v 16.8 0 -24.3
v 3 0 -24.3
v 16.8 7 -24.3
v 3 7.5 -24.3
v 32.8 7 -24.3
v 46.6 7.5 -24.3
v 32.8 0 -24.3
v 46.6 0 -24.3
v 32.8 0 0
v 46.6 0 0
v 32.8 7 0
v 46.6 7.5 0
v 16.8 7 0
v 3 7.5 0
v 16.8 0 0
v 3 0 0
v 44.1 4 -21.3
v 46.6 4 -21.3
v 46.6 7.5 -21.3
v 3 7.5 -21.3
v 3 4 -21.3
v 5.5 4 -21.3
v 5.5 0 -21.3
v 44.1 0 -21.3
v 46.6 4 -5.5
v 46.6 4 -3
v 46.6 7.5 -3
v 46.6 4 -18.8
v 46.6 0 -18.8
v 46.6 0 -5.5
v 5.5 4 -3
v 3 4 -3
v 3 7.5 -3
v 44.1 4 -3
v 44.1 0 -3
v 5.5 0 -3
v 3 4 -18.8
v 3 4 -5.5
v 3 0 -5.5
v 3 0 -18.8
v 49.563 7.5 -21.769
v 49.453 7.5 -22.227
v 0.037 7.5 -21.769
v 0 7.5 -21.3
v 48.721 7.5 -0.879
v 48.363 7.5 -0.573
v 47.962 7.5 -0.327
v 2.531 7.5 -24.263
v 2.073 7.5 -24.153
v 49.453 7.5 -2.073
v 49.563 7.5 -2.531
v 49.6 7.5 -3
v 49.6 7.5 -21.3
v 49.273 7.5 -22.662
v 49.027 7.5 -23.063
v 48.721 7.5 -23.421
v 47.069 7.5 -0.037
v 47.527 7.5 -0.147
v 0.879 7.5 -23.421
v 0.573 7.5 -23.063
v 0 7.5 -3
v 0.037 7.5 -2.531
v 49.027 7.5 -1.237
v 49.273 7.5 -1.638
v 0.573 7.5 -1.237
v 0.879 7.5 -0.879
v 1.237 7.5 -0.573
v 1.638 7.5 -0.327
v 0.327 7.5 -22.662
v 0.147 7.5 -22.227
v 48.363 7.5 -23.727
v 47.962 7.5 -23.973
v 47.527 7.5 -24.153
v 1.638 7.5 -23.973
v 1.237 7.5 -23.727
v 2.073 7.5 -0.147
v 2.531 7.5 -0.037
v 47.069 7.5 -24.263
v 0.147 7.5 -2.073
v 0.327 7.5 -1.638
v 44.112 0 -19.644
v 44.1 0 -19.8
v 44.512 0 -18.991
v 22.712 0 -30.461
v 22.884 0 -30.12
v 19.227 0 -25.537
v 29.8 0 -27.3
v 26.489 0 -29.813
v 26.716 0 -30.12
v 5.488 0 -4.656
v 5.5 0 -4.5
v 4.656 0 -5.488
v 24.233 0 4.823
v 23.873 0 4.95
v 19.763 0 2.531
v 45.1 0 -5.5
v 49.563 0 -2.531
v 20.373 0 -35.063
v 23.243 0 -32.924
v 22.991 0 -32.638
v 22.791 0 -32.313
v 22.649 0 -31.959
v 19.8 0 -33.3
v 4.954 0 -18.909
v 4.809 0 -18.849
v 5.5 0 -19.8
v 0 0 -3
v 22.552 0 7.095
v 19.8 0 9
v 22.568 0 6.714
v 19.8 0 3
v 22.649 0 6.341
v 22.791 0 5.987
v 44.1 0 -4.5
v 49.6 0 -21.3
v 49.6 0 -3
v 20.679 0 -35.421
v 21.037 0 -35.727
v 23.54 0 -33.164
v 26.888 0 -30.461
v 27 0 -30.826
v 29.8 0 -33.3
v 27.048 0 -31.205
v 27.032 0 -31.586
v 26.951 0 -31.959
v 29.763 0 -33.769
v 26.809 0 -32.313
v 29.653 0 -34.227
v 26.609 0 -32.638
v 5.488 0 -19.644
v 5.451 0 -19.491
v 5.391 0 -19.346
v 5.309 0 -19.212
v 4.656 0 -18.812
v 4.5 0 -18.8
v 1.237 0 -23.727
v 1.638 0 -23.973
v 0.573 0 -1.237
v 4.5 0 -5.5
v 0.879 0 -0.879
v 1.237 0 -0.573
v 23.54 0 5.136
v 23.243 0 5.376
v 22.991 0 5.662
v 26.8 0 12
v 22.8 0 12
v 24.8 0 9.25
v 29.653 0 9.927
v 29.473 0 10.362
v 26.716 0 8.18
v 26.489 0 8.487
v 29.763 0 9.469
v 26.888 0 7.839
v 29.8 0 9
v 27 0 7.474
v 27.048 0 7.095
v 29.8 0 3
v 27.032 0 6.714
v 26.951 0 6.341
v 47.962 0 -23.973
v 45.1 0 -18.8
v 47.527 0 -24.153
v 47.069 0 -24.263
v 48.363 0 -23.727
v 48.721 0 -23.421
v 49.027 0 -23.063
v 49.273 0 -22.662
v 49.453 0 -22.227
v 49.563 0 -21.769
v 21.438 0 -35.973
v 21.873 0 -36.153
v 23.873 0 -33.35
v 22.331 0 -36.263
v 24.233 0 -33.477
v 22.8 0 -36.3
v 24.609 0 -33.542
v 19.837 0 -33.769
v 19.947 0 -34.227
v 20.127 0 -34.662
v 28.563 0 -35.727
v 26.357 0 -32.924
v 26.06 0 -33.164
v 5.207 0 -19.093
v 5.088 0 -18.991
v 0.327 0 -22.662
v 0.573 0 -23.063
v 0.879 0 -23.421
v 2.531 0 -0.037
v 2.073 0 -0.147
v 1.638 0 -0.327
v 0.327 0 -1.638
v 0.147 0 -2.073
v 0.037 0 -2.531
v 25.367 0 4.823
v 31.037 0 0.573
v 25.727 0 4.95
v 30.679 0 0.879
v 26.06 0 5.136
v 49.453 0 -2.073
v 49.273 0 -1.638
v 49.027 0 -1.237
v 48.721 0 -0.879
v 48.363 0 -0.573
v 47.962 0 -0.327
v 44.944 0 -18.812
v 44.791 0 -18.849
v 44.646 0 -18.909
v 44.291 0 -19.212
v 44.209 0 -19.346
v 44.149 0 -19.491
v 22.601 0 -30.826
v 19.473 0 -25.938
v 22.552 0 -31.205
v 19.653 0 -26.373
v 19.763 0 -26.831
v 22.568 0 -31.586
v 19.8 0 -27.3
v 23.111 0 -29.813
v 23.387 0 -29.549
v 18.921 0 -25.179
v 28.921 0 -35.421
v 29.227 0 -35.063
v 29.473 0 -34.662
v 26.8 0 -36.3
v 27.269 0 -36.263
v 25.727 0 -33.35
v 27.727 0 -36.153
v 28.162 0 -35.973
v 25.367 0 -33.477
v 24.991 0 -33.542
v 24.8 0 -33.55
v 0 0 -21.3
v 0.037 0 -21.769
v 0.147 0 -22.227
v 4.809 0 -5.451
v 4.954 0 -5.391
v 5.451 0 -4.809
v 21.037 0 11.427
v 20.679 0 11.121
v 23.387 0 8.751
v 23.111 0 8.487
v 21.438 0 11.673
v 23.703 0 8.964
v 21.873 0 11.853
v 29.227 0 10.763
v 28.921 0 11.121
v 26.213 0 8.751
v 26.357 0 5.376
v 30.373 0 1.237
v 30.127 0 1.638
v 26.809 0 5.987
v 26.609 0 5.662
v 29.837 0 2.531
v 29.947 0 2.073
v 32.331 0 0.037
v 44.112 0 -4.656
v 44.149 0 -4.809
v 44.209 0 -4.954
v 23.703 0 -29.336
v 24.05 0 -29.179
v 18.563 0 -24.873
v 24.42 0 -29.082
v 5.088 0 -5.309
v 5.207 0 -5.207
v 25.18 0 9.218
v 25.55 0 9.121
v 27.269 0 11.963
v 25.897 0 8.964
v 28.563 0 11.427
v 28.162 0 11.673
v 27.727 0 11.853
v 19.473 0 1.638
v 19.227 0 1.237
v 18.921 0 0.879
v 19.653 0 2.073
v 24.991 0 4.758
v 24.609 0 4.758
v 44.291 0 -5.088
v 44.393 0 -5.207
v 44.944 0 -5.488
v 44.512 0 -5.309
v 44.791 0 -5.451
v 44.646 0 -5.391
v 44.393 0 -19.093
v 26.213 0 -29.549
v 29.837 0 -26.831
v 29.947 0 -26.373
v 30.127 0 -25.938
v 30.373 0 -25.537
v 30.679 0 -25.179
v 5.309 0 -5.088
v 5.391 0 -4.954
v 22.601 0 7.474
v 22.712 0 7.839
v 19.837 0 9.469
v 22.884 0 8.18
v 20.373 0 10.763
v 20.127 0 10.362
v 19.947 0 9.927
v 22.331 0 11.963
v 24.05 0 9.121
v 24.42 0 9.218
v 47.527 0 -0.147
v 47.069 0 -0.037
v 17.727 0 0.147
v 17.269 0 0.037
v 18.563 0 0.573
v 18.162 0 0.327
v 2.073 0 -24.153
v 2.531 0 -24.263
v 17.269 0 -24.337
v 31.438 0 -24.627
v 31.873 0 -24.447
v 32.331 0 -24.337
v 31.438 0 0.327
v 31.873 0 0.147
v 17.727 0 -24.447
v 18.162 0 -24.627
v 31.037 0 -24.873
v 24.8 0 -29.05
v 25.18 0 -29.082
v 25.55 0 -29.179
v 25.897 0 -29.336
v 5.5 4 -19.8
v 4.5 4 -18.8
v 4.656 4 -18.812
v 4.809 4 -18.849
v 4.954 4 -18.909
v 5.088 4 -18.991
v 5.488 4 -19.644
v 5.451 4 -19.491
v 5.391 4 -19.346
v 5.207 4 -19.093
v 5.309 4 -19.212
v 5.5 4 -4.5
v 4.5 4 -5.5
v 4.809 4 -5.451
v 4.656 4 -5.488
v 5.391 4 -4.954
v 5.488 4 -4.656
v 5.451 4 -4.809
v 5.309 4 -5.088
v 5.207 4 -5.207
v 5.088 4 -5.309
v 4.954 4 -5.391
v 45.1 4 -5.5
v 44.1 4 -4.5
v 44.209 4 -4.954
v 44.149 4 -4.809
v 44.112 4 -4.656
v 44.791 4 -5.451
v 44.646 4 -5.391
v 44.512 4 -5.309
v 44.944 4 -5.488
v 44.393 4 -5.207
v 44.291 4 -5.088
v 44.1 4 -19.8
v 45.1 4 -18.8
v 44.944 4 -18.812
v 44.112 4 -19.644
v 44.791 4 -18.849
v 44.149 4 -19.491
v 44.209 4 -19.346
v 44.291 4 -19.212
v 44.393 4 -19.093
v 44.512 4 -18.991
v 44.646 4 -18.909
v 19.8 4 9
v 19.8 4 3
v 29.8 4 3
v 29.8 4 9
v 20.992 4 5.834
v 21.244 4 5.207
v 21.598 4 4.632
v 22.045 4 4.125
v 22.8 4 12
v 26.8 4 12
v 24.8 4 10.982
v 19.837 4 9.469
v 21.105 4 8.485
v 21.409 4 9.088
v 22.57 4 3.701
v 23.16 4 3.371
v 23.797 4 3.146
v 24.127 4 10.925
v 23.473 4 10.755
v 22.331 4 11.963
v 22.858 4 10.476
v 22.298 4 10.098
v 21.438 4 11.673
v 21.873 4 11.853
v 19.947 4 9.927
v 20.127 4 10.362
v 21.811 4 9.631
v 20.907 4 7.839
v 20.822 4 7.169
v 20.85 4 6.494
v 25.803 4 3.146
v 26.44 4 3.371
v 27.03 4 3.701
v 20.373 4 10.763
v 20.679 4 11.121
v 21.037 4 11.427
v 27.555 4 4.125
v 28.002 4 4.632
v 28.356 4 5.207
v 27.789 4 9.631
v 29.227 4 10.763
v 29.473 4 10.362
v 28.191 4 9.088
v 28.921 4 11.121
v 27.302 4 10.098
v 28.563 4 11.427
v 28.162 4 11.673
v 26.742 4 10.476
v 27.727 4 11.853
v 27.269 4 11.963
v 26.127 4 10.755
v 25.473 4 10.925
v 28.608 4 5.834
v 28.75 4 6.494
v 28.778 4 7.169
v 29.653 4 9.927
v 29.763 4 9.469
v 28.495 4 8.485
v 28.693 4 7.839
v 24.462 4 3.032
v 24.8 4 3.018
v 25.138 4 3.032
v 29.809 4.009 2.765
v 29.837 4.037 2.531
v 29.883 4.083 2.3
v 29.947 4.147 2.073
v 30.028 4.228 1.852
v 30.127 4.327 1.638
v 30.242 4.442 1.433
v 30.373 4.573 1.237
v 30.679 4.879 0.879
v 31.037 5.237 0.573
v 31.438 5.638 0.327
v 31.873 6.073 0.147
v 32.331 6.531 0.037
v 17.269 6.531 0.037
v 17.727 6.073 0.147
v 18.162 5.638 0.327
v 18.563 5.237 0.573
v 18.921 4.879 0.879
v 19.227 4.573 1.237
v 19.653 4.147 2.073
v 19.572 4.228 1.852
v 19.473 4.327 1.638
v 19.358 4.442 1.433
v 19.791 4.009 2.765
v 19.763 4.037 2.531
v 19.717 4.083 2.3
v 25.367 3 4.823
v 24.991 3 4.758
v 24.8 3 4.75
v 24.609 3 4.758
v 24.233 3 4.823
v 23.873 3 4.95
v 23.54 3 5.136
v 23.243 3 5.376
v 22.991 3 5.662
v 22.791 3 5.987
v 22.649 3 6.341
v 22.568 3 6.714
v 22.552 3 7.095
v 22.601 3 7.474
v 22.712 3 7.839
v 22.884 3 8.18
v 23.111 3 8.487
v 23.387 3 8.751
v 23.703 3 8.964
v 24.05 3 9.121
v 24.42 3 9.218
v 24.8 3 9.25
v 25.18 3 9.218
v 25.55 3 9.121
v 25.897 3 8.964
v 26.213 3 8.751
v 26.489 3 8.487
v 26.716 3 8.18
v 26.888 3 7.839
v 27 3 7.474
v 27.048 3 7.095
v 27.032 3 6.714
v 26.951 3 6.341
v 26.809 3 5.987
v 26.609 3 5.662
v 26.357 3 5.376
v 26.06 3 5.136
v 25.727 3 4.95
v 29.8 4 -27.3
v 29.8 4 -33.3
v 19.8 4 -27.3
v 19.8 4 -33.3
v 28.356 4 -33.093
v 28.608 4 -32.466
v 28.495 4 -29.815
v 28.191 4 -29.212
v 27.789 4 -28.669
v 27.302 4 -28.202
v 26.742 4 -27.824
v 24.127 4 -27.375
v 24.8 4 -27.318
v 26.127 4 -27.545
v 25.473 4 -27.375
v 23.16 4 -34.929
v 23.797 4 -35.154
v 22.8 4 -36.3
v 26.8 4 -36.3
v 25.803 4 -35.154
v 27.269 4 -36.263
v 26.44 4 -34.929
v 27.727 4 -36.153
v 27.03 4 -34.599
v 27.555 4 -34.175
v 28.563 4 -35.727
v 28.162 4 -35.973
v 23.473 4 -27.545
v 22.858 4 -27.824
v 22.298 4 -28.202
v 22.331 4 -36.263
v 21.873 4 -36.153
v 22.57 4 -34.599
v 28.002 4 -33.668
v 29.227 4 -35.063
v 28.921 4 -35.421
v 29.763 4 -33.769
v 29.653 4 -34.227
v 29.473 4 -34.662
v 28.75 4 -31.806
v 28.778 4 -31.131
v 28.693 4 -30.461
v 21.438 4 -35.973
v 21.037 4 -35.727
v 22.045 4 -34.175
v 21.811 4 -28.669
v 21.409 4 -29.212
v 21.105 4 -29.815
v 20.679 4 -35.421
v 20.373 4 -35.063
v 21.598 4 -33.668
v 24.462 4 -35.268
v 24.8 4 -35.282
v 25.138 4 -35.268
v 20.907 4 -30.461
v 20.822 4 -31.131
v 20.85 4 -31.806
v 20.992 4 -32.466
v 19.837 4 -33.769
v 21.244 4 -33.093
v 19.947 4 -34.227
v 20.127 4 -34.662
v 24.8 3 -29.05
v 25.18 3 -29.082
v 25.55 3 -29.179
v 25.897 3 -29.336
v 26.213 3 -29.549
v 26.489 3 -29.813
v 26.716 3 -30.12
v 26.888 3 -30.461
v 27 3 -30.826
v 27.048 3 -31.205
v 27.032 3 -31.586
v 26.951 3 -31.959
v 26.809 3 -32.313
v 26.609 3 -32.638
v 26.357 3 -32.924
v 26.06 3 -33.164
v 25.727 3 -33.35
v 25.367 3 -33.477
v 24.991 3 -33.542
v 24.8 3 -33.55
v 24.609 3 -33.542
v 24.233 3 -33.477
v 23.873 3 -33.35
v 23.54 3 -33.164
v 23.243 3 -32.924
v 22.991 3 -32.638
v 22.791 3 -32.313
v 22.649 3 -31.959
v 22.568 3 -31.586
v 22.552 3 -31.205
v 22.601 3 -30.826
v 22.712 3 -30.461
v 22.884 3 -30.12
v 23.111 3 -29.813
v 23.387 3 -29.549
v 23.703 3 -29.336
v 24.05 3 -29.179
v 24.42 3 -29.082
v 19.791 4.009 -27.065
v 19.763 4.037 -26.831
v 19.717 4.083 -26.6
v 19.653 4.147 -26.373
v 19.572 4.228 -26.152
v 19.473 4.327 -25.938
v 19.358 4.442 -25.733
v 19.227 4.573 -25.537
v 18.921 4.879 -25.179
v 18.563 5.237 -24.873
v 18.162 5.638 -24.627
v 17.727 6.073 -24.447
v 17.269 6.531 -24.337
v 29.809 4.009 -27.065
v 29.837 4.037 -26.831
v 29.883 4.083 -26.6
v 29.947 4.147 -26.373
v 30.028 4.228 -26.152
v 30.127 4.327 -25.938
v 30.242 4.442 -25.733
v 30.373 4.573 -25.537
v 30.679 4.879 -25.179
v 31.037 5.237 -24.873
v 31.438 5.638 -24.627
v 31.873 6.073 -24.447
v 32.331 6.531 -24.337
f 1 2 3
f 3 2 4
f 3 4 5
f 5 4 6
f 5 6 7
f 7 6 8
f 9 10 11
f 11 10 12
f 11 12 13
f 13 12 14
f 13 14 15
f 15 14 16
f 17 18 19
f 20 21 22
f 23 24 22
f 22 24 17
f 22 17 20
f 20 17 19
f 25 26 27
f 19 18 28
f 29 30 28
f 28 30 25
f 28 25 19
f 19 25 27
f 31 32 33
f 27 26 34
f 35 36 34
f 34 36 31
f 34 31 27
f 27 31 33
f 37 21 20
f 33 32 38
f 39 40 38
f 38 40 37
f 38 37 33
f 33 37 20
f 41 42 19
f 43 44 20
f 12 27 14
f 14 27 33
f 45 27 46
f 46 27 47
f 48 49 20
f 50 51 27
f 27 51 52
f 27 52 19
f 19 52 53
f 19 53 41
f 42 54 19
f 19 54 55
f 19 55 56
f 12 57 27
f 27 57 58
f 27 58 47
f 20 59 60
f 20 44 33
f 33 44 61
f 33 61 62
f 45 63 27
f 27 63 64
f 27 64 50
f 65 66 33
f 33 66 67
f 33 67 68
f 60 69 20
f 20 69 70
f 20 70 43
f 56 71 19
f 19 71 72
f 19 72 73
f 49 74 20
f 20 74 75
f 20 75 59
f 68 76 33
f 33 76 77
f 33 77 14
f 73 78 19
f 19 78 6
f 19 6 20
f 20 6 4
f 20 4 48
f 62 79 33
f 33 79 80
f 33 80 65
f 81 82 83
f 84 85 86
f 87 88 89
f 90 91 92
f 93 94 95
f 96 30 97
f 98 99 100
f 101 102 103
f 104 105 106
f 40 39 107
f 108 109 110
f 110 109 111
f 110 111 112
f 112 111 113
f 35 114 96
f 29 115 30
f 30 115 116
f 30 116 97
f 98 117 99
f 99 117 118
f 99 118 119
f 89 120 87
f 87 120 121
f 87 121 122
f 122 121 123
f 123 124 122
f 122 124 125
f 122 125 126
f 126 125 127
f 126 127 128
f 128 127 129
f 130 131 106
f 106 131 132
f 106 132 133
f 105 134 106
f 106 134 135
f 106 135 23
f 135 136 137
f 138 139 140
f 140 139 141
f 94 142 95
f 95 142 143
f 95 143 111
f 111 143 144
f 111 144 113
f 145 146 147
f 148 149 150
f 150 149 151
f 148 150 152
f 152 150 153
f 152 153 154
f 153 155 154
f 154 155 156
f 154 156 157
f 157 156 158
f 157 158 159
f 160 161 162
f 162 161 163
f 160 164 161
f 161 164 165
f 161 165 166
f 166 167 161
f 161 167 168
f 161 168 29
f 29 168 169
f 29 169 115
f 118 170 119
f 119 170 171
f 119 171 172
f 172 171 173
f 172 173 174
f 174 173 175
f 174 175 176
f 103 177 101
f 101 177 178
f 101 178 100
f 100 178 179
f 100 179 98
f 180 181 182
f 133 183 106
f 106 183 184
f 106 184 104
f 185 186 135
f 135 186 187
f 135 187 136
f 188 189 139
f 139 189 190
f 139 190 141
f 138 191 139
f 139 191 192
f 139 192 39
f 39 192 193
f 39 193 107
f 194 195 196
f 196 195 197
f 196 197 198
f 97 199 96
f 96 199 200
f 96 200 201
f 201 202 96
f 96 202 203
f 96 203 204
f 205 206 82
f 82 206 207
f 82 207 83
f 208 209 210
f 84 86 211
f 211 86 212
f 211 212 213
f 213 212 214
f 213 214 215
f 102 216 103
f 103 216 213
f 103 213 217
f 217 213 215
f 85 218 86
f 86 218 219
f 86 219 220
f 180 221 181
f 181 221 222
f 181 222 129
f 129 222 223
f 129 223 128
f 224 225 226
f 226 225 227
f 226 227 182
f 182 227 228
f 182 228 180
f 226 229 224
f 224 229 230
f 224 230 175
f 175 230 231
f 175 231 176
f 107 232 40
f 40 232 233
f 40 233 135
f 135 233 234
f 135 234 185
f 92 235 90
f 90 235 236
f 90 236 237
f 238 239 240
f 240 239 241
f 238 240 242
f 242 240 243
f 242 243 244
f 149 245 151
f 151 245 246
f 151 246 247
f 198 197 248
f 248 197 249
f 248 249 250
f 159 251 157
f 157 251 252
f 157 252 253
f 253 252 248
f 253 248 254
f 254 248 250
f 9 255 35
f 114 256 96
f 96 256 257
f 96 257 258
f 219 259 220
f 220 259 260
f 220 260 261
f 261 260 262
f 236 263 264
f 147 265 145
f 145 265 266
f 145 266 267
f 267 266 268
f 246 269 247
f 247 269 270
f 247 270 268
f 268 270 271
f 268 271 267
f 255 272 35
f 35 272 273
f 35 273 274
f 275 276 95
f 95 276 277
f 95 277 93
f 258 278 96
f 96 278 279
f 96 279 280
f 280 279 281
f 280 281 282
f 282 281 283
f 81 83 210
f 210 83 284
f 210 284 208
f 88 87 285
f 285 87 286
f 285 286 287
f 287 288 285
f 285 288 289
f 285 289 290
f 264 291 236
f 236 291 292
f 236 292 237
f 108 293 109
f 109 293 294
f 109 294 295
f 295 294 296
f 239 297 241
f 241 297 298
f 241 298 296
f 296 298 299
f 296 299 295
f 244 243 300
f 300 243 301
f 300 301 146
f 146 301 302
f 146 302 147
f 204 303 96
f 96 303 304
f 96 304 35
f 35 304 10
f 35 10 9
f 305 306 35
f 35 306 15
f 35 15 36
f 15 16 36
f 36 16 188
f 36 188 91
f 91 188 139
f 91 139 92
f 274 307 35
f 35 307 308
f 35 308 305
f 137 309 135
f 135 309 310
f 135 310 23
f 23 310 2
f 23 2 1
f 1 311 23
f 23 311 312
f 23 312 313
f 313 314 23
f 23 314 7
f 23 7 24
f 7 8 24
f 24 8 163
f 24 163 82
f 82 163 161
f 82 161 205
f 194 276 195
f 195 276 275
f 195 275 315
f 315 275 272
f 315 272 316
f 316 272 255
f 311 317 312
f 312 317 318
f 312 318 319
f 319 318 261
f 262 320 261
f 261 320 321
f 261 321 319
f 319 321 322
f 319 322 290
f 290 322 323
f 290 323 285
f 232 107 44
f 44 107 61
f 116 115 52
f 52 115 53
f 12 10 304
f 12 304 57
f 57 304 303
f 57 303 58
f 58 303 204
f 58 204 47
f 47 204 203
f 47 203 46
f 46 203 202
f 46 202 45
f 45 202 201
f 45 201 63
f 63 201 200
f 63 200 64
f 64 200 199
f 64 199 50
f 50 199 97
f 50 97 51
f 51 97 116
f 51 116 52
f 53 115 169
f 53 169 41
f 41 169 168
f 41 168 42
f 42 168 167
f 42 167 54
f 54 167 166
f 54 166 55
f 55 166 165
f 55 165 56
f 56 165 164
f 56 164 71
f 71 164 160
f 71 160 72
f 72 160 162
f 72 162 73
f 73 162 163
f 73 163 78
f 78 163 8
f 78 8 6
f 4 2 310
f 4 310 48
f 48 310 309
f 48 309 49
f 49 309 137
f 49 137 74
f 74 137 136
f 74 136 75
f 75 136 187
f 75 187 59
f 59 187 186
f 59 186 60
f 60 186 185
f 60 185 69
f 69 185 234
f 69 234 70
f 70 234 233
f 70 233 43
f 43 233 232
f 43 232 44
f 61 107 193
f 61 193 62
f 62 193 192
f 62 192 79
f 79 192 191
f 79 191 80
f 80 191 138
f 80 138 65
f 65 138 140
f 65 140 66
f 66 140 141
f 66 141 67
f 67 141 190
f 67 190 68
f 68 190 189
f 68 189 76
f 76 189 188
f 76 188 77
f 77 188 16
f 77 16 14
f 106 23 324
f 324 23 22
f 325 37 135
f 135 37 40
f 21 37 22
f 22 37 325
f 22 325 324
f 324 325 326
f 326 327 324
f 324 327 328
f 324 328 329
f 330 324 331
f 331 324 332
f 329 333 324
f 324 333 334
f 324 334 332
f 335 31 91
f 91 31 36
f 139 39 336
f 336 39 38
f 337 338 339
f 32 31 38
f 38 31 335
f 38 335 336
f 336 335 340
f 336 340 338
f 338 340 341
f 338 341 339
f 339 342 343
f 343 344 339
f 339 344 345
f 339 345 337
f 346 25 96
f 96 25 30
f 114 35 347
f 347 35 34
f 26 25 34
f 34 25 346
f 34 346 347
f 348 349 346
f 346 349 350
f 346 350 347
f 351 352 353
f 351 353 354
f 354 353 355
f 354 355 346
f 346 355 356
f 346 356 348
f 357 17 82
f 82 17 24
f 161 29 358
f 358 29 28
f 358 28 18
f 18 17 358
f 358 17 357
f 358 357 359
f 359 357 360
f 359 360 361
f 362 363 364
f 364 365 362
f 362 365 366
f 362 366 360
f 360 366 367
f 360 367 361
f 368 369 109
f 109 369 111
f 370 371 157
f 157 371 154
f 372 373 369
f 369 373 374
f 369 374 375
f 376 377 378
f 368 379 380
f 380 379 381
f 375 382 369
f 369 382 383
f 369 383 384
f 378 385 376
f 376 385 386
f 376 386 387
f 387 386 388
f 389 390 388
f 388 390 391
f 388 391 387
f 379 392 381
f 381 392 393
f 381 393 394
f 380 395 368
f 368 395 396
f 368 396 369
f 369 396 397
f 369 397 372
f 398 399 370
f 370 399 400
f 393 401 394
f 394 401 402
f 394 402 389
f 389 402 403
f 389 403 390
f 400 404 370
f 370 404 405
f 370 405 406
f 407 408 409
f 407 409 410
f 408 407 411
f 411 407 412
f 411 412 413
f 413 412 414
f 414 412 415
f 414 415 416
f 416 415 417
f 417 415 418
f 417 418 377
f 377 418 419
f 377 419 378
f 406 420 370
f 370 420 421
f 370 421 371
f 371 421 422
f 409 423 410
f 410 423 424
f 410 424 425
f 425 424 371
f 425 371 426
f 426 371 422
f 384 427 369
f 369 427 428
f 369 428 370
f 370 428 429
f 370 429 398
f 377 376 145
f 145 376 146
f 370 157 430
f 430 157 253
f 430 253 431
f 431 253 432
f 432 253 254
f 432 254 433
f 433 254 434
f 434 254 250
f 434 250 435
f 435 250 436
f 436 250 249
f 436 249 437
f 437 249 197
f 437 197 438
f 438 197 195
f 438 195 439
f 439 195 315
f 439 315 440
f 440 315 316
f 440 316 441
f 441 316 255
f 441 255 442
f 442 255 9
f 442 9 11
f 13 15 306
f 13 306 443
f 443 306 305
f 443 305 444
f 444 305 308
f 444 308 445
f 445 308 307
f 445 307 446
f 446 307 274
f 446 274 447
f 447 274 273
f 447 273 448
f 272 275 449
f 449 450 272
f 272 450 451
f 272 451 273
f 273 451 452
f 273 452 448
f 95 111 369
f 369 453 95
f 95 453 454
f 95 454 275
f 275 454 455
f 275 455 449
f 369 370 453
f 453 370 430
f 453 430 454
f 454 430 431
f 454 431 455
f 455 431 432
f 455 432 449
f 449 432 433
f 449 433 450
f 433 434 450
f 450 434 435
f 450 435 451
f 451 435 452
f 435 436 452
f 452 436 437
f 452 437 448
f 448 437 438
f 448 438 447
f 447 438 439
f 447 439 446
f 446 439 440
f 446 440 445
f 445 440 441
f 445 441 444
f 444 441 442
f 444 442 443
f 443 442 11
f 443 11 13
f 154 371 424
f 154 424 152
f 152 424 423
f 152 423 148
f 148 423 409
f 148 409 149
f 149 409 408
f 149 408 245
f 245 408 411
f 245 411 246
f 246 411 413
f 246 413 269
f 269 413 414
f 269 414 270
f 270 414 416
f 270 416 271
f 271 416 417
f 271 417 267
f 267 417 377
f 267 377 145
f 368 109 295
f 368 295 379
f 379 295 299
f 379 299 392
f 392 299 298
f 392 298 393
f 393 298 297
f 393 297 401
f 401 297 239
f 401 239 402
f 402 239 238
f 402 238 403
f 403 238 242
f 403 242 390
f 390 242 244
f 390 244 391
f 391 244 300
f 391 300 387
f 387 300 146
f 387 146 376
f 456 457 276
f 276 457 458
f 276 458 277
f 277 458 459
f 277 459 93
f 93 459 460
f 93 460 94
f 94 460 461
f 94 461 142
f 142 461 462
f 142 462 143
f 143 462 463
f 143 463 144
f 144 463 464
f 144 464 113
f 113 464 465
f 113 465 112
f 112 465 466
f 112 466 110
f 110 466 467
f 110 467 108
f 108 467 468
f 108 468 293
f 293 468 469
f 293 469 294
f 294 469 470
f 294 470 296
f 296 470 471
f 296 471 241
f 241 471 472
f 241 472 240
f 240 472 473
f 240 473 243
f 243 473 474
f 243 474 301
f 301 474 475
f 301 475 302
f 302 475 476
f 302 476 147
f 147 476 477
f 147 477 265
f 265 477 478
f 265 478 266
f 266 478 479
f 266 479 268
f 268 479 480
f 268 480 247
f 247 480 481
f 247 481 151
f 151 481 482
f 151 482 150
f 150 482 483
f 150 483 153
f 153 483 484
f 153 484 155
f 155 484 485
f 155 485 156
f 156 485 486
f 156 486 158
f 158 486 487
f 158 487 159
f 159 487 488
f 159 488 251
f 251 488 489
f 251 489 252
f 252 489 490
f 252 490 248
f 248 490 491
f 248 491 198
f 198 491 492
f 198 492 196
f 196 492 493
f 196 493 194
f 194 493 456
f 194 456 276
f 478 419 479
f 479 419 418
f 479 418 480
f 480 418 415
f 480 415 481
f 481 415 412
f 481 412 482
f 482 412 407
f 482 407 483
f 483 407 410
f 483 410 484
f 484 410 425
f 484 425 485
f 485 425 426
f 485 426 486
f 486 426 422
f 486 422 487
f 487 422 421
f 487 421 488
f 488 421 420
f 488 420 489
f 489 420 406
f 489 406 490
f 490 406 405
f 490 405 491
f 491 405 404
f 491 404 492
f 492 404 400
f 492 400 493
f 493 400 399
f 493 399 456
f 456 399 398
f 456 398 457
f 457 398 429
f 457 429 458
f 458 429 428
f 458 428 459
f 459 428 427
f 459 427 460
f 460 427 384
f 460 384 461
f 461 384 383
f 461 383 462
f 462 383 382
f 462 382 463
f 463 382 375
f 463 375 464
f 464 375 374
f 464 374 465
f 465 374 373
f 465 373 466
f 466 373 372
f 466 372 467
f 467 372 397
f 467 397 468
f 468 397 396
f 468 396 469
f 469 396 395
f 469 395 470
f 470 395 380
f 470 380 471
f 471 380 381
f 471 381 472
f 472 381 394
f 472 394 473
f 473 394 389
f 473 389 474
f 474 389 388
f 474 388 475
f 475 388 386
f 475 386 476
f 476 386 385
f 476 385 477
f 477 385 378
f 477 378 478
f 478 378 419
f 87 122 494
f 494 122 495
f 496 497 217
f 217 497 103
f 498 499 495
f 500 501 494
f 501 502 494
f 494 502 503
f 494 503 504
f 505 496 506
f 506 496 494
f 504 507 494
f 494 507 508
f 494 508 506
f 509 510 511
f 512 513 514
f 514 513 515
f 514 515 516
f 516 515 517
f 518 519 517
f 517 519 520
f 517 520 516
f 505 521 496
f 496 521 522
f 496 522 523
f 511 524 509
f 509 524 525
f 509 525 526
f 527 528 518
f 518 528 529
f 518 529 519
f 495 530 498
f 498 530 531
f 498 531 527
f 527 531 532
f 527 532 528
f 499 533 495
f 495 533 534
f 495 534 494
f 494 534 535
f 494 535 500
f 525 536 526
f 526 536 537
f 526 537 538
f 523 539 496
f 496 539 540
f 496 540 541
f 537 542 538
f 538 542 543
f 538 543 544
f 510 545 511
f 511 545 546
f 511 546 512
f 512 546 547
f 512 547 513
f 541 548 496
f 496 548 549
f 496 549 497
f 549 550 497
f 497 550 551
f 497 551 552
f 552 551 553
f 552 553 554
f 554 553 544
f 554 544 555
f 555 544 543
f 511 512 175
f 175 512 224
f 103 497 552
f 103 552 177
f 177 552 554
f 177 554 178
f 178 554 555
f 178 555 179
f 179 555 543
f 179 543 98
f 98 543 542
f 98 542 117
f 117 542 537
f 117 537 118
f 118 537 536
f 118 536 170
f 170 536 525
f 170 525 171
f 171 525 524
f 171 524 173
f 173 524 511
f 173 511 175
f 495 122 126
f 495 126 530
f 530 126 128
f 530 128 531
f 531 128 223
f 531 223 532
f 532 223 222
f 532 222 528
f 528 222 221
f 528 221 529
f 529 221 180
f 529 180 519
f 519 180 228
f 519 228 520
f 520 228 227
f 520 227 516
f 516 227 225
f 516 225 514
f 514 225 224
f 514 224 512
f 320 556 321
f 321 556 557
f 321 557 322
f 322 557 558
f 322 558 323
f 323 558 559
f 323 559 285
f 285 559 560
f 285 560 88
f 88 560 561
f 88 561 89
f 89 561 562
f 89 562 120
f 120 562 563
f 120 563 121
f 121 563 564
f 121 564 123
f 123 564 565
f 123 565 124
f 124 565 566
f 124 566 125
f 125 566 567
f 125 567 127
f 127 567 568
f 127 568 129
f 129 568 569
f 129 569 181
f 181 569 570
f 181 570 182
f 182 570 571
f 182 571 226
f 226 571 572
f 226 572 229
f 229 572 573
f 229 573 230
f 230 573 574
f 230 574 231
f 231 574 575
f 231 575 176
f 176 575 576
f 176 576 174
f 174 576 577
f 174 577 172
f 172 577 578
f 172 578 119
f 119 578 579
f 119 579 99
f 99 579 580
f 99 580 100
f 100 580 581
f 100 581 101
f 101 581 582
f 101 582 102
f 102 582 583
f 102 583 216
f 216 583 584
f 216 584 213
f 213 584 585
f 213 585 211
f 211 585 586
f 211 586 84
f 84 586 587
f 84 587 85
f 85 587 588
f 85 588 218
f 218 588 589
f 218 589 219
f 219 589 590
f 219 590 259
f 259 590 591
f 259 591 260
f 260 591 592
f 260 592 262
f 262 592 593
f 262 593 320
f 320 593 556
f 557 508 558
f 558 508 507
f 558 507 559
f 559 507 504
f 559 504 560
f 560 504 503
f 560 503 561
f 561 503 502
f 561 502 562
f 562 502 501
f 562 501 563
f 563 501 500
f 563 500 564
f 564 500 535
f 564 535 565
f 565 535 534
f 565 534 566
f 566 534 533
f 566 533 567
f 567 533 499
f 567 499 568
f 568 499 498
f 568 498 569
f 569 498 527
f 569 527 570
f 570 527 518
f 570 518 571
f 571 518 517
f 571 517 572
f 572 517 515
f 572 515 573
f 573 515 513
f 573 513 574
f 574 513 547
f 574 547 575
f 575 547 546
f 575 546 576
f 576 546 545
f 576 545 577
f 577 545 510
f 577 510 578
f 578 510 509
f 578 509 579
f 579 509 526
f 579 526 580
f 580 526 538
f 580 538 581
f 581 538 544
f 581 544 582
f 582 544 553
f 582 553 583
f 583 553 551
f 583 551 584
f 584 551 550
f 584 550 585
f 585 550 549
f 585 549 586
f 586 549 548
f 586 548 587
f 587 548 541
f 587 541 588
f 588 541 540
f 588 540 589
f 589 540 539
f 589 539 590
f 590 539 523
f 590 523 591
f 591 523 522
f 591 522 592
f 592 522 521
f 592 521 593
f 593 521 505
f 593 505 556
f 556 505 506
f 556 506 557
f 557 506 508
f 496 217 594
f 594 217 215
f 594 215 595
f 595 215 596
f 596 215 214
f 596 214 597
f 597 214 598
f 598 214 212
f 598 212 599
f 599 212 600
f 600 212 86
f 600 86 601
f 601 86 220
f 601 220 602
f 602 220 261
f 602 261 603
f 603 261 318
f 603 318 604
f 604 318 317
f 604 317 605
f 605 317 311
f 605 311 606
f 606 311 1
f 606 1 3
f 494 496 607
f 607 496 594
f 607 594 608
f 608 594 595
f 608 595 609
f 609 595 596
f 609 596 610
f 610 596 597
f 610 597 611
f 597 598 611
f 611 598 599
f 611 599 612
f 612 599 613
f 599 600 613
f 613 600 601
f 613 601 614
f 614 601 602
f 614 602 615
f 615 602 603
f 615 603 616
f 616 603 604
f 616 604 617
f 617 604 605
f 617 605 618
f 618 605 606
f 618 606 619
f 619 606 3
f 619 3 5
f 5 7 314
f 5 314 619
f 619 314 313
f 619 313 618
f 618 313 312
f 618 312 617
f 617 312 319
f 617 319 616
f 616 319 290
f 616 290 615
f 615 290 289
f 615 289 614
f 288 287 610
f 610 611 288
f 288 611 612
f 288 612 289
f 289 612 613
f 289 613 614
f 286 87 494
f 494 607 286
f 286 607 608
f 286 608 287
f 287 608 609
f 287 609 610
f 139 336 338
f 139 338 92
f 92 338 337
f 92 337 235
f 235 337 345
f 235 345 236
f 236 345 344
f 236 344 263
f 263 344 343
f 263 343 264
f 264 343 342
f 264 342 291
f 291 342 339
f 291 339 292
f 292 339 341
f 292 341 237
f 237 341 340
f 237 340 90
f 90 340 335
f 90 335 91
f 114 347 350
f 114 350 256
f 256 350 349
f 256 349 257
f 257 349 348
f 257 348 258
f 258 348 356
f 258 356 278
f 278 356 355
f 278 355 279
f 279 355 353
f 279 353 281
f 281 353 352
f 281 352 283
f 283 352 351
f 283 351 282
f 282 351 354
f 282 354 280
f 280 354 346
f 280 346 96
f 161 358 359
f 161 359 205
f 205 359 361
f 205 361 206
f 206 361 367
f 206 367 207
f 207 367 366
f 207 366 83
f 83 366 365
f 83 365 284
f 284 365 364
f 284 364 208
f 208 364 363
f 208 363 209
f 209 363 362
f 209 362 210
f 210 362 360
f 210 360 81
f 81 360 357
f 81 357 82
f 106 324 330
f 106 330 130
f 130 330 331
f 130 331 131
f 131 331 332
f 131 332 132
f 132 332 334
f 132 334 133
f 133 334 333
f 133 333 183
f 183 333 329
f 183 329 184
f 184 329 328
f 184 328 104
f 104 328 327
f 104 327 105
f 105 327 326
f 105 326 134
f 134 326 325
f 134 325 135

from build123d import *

# Parameters (mm, degrees)
SKETCH5_W             = 49.6
SKETCH5_H             = 24.3
SKETCH5_W_2           = 43.6
SKETCH5_H_2           = 18.3
BOSS_EXTRUDE3_DEPTH   = 7.5
FILLET1_R             = 3
SKETCH7_W             = 2.5
SKETCH7_H             = 2.5
BOSS_EXTRUDE5_DEPTH   = 4
SKETCH11_W            = 10
SKETCH11_H            = 4
BOSS_EXTRUDE6_DEPTH   = 12
FILLET3_R             = 3
SKETCH13_R            = 2.25
CUT_EXTRUDE1_DEPTH    = 56.377341937
CHAMFER2_SIZE         = 1
CHAMFER2_SIZE2        = 1.732050808
CIRPATTERN1_OUTLINE_R = 2.25
CIRPATTERN1_DEPTH     = 2.9999999
CIRPATTERN1_START     = 2.9999999
CIRPATTERN1_2_DEPTH   = 1.0000001
FILLET5_R             = 3
FILLET6_R             = 1


with BuildPart() as part:
    # Sketch5 → Boss-Extrude3 (new body)
    with BuildSketch(Plane(origin=(0, 0, 0), x_dir=(1, 0, 0), z_dir=(0, 1, 0))):
        with Locations((24.8, 12.15)):
            Rectangle(SKETCH5_W, SKETCH5_H)
        with Locations((24.8, 12.15)):
            Rectangle(SKETCH5_W_2, SKETCH5_H_2, mode=Mode.SUBTRACT)
    extrude(amount=BOSS_EXTRUDE3_DEPTH)

    # Fillet1
    fillet1_edges = [part.edges().sort_by_distance(p)[0] for p in [
        (49.6, 3.75, -24.3),
        (49.6, 3.75, 0),
        (0, 3.75, 0),
        (0, 3.75, -24.3),
    ]]
    fillet(fillet1_edges, radius=FILLET1_R)

    # Sketch7 → Boss-Extrude5 (add)
    with BuildSketch(Plane(origin=(0, 0, 0), x_dir=(1, 0, 0), z_dir=(0, 1, 0))):
        with Locations((45.35, 4.25)):
            Rectangle(SKETCH7_W, SKETCH7_H)
        with Locations((45.35, 20.05)):
            Rectangle(SKETCH7_W, SKETCH7_H)
        with Locations((4.25, 4.25)):
            Rectangle(SKETCH7_W, SKETCH7_H)
        with Locations((4.25, 20.05)):
            Rectangle(SKETCH7_W, SKETCH7_H)
    extrude(amount=BOSS_EXTRUDE5_DEPTH)

    # Sketch11 → Boss-Extrude6 (add)
    with BuildSketch(Plane.XY):
        with Locations((24.8, 2)):
            Rectangle(SKETCH11_W, SKETCH11_H)
    extrude(amount=BOSS_EXTRUDE6_DEPTH)

    # Fillet3
    fillet3_edges = [part.edges().sort_by_distance(p)[0] for p in [
        (19.8, 2, 0),
        (29.8, 2, 0),
        (24.8, 4, 0),
        (19.8, 2, 12),
        (29.8, 2, 12),
    ]]
    fillet(fillet3_edges, radius=FILLET3_R)

    # Sketch13 → Cut-Extrude1 (cut, through all)
    with BuildSketch(Plane(origin=(0, 4, 0), x_dir=(1, 0, 0), z_dir=(0, 1, 0))):
        with Locations(Location((24.8, -7, 0), (0, 0, 270))):
            Circle(SKETCH13_R)
    extrude(amount=-CUT_EXTRUDE1_DEPTH, mode=Mode.SUBTRACT)

    # Chamfer2
    chamfer2_edges = [part.edges().sort_by_distance(p)[0] for p in [
        (24.8, 4, 4.75),
    ]]
    chamfer2_side = [part.faces().sort_by_distance(p)[0] for p in [
        (24.8, 2, 4.75),
    ]]
    chamfer(chamfer2_edges, length=CHAMFER2_SIZE, length2=CHAMFER2_SIZE2, reference=chamfer2_side[0])

    # CirPattern1: read off the stored shape, not the designer's step
    # CirPattern1 outline → CirPattern1 (add)
    with BuildSketch(Plane(origin=(0, 0, 0), x_dir=(1, 0, 0), z_dir=(0, 1, 0))):
        with BuildLine():
            Line((19.8, 33.3), (19.8, 24.3))
            Line((19.8, 24.3), (29.8, 24.3))
            Line((29.8, 24.3), (29.8, 33.3))
            ThreePointArc((29.8, 33.3), (28.921320344, 35.421320344), (26.8, 36.3))
            Line((26.8, 36.3), (22.8, 36.3))
            ThreePointArc((22.8, 36.3), (20.678679656, 35.421320344), (19.8, 33.3))
        make_face()
        with Locations((24.8, 31.3)):
            Circle(CIRPATTERN1_OUTLINE_R, mode=Mode.SUBTRACT)
    extrude(amount=CIRPATTERN1_DEPTH)

    # CirPattern1 2 outline → CirPattern1 2 (add)
    with BuildSketch(Plane(origin=(0, 0, 0), x_dir=(1, 0, 0), z_dir=(0, 1, 0)).offset(CIRPATTERN1_START)):
        with BuildLine():
            Line((19.8, 33.3), (19.8, 24.3))
            Line((19.8, 24.3), (29.8, 24.3))
            Line((29.8, 24.3), (29.8, 33.3))
            ThreePointArc((29.8, 33.3), (28.921320344, 35.421320344), (26.8, 36.3))
            Line((26.8, 36.3), (22.8, 36.3))
            ThreePointArc((22.8, 36.3), (20.678679656, 35.421320344), (19.8, 33.3))
        make_face()
    extrude(amount=CIRPATTERN1_2_DEPTH)

    # CirPattern1 3 outline → CirPattern1 3 (revolve, cut)
    with BuildSketch(Plane(origin=(24.8, 0, -31.3), x_dir=(1, 0, 0), z_dir=(0, 0, 1))):
        Polygon((0, 2.9999999), (2.25, 2.9999999), (3.982050808, 4), (0, 4), align=None)
    revolve(axis=Axis((24.8, 0, -31.3), (0, 1, 0)), mode=Mode.SUBTRACT)

    # Fillet5
    fillet5_edges = [part.edges().sort_by_distance(p)[0] for p in [
        (29.8, 2, -24.3),
        (19.8, 2, -24.3),
        (24.8, 4, -24.3),
    ]]
    fillet(fillet5_edges, radius=FILLET5_R)

    # Fillet6
    fillet6_edges = [part.edges().sort_by_distance(p)[0] for p in [
        (5.5, 2, -18.8),
        (5.5, 2, -5.5),
        (44.1, 2, -5.5),
        (44.1, 2, -18.8),
    ]]
    fillet(fillet6_edges, radius=FILLET6_R)


solid = part.part
